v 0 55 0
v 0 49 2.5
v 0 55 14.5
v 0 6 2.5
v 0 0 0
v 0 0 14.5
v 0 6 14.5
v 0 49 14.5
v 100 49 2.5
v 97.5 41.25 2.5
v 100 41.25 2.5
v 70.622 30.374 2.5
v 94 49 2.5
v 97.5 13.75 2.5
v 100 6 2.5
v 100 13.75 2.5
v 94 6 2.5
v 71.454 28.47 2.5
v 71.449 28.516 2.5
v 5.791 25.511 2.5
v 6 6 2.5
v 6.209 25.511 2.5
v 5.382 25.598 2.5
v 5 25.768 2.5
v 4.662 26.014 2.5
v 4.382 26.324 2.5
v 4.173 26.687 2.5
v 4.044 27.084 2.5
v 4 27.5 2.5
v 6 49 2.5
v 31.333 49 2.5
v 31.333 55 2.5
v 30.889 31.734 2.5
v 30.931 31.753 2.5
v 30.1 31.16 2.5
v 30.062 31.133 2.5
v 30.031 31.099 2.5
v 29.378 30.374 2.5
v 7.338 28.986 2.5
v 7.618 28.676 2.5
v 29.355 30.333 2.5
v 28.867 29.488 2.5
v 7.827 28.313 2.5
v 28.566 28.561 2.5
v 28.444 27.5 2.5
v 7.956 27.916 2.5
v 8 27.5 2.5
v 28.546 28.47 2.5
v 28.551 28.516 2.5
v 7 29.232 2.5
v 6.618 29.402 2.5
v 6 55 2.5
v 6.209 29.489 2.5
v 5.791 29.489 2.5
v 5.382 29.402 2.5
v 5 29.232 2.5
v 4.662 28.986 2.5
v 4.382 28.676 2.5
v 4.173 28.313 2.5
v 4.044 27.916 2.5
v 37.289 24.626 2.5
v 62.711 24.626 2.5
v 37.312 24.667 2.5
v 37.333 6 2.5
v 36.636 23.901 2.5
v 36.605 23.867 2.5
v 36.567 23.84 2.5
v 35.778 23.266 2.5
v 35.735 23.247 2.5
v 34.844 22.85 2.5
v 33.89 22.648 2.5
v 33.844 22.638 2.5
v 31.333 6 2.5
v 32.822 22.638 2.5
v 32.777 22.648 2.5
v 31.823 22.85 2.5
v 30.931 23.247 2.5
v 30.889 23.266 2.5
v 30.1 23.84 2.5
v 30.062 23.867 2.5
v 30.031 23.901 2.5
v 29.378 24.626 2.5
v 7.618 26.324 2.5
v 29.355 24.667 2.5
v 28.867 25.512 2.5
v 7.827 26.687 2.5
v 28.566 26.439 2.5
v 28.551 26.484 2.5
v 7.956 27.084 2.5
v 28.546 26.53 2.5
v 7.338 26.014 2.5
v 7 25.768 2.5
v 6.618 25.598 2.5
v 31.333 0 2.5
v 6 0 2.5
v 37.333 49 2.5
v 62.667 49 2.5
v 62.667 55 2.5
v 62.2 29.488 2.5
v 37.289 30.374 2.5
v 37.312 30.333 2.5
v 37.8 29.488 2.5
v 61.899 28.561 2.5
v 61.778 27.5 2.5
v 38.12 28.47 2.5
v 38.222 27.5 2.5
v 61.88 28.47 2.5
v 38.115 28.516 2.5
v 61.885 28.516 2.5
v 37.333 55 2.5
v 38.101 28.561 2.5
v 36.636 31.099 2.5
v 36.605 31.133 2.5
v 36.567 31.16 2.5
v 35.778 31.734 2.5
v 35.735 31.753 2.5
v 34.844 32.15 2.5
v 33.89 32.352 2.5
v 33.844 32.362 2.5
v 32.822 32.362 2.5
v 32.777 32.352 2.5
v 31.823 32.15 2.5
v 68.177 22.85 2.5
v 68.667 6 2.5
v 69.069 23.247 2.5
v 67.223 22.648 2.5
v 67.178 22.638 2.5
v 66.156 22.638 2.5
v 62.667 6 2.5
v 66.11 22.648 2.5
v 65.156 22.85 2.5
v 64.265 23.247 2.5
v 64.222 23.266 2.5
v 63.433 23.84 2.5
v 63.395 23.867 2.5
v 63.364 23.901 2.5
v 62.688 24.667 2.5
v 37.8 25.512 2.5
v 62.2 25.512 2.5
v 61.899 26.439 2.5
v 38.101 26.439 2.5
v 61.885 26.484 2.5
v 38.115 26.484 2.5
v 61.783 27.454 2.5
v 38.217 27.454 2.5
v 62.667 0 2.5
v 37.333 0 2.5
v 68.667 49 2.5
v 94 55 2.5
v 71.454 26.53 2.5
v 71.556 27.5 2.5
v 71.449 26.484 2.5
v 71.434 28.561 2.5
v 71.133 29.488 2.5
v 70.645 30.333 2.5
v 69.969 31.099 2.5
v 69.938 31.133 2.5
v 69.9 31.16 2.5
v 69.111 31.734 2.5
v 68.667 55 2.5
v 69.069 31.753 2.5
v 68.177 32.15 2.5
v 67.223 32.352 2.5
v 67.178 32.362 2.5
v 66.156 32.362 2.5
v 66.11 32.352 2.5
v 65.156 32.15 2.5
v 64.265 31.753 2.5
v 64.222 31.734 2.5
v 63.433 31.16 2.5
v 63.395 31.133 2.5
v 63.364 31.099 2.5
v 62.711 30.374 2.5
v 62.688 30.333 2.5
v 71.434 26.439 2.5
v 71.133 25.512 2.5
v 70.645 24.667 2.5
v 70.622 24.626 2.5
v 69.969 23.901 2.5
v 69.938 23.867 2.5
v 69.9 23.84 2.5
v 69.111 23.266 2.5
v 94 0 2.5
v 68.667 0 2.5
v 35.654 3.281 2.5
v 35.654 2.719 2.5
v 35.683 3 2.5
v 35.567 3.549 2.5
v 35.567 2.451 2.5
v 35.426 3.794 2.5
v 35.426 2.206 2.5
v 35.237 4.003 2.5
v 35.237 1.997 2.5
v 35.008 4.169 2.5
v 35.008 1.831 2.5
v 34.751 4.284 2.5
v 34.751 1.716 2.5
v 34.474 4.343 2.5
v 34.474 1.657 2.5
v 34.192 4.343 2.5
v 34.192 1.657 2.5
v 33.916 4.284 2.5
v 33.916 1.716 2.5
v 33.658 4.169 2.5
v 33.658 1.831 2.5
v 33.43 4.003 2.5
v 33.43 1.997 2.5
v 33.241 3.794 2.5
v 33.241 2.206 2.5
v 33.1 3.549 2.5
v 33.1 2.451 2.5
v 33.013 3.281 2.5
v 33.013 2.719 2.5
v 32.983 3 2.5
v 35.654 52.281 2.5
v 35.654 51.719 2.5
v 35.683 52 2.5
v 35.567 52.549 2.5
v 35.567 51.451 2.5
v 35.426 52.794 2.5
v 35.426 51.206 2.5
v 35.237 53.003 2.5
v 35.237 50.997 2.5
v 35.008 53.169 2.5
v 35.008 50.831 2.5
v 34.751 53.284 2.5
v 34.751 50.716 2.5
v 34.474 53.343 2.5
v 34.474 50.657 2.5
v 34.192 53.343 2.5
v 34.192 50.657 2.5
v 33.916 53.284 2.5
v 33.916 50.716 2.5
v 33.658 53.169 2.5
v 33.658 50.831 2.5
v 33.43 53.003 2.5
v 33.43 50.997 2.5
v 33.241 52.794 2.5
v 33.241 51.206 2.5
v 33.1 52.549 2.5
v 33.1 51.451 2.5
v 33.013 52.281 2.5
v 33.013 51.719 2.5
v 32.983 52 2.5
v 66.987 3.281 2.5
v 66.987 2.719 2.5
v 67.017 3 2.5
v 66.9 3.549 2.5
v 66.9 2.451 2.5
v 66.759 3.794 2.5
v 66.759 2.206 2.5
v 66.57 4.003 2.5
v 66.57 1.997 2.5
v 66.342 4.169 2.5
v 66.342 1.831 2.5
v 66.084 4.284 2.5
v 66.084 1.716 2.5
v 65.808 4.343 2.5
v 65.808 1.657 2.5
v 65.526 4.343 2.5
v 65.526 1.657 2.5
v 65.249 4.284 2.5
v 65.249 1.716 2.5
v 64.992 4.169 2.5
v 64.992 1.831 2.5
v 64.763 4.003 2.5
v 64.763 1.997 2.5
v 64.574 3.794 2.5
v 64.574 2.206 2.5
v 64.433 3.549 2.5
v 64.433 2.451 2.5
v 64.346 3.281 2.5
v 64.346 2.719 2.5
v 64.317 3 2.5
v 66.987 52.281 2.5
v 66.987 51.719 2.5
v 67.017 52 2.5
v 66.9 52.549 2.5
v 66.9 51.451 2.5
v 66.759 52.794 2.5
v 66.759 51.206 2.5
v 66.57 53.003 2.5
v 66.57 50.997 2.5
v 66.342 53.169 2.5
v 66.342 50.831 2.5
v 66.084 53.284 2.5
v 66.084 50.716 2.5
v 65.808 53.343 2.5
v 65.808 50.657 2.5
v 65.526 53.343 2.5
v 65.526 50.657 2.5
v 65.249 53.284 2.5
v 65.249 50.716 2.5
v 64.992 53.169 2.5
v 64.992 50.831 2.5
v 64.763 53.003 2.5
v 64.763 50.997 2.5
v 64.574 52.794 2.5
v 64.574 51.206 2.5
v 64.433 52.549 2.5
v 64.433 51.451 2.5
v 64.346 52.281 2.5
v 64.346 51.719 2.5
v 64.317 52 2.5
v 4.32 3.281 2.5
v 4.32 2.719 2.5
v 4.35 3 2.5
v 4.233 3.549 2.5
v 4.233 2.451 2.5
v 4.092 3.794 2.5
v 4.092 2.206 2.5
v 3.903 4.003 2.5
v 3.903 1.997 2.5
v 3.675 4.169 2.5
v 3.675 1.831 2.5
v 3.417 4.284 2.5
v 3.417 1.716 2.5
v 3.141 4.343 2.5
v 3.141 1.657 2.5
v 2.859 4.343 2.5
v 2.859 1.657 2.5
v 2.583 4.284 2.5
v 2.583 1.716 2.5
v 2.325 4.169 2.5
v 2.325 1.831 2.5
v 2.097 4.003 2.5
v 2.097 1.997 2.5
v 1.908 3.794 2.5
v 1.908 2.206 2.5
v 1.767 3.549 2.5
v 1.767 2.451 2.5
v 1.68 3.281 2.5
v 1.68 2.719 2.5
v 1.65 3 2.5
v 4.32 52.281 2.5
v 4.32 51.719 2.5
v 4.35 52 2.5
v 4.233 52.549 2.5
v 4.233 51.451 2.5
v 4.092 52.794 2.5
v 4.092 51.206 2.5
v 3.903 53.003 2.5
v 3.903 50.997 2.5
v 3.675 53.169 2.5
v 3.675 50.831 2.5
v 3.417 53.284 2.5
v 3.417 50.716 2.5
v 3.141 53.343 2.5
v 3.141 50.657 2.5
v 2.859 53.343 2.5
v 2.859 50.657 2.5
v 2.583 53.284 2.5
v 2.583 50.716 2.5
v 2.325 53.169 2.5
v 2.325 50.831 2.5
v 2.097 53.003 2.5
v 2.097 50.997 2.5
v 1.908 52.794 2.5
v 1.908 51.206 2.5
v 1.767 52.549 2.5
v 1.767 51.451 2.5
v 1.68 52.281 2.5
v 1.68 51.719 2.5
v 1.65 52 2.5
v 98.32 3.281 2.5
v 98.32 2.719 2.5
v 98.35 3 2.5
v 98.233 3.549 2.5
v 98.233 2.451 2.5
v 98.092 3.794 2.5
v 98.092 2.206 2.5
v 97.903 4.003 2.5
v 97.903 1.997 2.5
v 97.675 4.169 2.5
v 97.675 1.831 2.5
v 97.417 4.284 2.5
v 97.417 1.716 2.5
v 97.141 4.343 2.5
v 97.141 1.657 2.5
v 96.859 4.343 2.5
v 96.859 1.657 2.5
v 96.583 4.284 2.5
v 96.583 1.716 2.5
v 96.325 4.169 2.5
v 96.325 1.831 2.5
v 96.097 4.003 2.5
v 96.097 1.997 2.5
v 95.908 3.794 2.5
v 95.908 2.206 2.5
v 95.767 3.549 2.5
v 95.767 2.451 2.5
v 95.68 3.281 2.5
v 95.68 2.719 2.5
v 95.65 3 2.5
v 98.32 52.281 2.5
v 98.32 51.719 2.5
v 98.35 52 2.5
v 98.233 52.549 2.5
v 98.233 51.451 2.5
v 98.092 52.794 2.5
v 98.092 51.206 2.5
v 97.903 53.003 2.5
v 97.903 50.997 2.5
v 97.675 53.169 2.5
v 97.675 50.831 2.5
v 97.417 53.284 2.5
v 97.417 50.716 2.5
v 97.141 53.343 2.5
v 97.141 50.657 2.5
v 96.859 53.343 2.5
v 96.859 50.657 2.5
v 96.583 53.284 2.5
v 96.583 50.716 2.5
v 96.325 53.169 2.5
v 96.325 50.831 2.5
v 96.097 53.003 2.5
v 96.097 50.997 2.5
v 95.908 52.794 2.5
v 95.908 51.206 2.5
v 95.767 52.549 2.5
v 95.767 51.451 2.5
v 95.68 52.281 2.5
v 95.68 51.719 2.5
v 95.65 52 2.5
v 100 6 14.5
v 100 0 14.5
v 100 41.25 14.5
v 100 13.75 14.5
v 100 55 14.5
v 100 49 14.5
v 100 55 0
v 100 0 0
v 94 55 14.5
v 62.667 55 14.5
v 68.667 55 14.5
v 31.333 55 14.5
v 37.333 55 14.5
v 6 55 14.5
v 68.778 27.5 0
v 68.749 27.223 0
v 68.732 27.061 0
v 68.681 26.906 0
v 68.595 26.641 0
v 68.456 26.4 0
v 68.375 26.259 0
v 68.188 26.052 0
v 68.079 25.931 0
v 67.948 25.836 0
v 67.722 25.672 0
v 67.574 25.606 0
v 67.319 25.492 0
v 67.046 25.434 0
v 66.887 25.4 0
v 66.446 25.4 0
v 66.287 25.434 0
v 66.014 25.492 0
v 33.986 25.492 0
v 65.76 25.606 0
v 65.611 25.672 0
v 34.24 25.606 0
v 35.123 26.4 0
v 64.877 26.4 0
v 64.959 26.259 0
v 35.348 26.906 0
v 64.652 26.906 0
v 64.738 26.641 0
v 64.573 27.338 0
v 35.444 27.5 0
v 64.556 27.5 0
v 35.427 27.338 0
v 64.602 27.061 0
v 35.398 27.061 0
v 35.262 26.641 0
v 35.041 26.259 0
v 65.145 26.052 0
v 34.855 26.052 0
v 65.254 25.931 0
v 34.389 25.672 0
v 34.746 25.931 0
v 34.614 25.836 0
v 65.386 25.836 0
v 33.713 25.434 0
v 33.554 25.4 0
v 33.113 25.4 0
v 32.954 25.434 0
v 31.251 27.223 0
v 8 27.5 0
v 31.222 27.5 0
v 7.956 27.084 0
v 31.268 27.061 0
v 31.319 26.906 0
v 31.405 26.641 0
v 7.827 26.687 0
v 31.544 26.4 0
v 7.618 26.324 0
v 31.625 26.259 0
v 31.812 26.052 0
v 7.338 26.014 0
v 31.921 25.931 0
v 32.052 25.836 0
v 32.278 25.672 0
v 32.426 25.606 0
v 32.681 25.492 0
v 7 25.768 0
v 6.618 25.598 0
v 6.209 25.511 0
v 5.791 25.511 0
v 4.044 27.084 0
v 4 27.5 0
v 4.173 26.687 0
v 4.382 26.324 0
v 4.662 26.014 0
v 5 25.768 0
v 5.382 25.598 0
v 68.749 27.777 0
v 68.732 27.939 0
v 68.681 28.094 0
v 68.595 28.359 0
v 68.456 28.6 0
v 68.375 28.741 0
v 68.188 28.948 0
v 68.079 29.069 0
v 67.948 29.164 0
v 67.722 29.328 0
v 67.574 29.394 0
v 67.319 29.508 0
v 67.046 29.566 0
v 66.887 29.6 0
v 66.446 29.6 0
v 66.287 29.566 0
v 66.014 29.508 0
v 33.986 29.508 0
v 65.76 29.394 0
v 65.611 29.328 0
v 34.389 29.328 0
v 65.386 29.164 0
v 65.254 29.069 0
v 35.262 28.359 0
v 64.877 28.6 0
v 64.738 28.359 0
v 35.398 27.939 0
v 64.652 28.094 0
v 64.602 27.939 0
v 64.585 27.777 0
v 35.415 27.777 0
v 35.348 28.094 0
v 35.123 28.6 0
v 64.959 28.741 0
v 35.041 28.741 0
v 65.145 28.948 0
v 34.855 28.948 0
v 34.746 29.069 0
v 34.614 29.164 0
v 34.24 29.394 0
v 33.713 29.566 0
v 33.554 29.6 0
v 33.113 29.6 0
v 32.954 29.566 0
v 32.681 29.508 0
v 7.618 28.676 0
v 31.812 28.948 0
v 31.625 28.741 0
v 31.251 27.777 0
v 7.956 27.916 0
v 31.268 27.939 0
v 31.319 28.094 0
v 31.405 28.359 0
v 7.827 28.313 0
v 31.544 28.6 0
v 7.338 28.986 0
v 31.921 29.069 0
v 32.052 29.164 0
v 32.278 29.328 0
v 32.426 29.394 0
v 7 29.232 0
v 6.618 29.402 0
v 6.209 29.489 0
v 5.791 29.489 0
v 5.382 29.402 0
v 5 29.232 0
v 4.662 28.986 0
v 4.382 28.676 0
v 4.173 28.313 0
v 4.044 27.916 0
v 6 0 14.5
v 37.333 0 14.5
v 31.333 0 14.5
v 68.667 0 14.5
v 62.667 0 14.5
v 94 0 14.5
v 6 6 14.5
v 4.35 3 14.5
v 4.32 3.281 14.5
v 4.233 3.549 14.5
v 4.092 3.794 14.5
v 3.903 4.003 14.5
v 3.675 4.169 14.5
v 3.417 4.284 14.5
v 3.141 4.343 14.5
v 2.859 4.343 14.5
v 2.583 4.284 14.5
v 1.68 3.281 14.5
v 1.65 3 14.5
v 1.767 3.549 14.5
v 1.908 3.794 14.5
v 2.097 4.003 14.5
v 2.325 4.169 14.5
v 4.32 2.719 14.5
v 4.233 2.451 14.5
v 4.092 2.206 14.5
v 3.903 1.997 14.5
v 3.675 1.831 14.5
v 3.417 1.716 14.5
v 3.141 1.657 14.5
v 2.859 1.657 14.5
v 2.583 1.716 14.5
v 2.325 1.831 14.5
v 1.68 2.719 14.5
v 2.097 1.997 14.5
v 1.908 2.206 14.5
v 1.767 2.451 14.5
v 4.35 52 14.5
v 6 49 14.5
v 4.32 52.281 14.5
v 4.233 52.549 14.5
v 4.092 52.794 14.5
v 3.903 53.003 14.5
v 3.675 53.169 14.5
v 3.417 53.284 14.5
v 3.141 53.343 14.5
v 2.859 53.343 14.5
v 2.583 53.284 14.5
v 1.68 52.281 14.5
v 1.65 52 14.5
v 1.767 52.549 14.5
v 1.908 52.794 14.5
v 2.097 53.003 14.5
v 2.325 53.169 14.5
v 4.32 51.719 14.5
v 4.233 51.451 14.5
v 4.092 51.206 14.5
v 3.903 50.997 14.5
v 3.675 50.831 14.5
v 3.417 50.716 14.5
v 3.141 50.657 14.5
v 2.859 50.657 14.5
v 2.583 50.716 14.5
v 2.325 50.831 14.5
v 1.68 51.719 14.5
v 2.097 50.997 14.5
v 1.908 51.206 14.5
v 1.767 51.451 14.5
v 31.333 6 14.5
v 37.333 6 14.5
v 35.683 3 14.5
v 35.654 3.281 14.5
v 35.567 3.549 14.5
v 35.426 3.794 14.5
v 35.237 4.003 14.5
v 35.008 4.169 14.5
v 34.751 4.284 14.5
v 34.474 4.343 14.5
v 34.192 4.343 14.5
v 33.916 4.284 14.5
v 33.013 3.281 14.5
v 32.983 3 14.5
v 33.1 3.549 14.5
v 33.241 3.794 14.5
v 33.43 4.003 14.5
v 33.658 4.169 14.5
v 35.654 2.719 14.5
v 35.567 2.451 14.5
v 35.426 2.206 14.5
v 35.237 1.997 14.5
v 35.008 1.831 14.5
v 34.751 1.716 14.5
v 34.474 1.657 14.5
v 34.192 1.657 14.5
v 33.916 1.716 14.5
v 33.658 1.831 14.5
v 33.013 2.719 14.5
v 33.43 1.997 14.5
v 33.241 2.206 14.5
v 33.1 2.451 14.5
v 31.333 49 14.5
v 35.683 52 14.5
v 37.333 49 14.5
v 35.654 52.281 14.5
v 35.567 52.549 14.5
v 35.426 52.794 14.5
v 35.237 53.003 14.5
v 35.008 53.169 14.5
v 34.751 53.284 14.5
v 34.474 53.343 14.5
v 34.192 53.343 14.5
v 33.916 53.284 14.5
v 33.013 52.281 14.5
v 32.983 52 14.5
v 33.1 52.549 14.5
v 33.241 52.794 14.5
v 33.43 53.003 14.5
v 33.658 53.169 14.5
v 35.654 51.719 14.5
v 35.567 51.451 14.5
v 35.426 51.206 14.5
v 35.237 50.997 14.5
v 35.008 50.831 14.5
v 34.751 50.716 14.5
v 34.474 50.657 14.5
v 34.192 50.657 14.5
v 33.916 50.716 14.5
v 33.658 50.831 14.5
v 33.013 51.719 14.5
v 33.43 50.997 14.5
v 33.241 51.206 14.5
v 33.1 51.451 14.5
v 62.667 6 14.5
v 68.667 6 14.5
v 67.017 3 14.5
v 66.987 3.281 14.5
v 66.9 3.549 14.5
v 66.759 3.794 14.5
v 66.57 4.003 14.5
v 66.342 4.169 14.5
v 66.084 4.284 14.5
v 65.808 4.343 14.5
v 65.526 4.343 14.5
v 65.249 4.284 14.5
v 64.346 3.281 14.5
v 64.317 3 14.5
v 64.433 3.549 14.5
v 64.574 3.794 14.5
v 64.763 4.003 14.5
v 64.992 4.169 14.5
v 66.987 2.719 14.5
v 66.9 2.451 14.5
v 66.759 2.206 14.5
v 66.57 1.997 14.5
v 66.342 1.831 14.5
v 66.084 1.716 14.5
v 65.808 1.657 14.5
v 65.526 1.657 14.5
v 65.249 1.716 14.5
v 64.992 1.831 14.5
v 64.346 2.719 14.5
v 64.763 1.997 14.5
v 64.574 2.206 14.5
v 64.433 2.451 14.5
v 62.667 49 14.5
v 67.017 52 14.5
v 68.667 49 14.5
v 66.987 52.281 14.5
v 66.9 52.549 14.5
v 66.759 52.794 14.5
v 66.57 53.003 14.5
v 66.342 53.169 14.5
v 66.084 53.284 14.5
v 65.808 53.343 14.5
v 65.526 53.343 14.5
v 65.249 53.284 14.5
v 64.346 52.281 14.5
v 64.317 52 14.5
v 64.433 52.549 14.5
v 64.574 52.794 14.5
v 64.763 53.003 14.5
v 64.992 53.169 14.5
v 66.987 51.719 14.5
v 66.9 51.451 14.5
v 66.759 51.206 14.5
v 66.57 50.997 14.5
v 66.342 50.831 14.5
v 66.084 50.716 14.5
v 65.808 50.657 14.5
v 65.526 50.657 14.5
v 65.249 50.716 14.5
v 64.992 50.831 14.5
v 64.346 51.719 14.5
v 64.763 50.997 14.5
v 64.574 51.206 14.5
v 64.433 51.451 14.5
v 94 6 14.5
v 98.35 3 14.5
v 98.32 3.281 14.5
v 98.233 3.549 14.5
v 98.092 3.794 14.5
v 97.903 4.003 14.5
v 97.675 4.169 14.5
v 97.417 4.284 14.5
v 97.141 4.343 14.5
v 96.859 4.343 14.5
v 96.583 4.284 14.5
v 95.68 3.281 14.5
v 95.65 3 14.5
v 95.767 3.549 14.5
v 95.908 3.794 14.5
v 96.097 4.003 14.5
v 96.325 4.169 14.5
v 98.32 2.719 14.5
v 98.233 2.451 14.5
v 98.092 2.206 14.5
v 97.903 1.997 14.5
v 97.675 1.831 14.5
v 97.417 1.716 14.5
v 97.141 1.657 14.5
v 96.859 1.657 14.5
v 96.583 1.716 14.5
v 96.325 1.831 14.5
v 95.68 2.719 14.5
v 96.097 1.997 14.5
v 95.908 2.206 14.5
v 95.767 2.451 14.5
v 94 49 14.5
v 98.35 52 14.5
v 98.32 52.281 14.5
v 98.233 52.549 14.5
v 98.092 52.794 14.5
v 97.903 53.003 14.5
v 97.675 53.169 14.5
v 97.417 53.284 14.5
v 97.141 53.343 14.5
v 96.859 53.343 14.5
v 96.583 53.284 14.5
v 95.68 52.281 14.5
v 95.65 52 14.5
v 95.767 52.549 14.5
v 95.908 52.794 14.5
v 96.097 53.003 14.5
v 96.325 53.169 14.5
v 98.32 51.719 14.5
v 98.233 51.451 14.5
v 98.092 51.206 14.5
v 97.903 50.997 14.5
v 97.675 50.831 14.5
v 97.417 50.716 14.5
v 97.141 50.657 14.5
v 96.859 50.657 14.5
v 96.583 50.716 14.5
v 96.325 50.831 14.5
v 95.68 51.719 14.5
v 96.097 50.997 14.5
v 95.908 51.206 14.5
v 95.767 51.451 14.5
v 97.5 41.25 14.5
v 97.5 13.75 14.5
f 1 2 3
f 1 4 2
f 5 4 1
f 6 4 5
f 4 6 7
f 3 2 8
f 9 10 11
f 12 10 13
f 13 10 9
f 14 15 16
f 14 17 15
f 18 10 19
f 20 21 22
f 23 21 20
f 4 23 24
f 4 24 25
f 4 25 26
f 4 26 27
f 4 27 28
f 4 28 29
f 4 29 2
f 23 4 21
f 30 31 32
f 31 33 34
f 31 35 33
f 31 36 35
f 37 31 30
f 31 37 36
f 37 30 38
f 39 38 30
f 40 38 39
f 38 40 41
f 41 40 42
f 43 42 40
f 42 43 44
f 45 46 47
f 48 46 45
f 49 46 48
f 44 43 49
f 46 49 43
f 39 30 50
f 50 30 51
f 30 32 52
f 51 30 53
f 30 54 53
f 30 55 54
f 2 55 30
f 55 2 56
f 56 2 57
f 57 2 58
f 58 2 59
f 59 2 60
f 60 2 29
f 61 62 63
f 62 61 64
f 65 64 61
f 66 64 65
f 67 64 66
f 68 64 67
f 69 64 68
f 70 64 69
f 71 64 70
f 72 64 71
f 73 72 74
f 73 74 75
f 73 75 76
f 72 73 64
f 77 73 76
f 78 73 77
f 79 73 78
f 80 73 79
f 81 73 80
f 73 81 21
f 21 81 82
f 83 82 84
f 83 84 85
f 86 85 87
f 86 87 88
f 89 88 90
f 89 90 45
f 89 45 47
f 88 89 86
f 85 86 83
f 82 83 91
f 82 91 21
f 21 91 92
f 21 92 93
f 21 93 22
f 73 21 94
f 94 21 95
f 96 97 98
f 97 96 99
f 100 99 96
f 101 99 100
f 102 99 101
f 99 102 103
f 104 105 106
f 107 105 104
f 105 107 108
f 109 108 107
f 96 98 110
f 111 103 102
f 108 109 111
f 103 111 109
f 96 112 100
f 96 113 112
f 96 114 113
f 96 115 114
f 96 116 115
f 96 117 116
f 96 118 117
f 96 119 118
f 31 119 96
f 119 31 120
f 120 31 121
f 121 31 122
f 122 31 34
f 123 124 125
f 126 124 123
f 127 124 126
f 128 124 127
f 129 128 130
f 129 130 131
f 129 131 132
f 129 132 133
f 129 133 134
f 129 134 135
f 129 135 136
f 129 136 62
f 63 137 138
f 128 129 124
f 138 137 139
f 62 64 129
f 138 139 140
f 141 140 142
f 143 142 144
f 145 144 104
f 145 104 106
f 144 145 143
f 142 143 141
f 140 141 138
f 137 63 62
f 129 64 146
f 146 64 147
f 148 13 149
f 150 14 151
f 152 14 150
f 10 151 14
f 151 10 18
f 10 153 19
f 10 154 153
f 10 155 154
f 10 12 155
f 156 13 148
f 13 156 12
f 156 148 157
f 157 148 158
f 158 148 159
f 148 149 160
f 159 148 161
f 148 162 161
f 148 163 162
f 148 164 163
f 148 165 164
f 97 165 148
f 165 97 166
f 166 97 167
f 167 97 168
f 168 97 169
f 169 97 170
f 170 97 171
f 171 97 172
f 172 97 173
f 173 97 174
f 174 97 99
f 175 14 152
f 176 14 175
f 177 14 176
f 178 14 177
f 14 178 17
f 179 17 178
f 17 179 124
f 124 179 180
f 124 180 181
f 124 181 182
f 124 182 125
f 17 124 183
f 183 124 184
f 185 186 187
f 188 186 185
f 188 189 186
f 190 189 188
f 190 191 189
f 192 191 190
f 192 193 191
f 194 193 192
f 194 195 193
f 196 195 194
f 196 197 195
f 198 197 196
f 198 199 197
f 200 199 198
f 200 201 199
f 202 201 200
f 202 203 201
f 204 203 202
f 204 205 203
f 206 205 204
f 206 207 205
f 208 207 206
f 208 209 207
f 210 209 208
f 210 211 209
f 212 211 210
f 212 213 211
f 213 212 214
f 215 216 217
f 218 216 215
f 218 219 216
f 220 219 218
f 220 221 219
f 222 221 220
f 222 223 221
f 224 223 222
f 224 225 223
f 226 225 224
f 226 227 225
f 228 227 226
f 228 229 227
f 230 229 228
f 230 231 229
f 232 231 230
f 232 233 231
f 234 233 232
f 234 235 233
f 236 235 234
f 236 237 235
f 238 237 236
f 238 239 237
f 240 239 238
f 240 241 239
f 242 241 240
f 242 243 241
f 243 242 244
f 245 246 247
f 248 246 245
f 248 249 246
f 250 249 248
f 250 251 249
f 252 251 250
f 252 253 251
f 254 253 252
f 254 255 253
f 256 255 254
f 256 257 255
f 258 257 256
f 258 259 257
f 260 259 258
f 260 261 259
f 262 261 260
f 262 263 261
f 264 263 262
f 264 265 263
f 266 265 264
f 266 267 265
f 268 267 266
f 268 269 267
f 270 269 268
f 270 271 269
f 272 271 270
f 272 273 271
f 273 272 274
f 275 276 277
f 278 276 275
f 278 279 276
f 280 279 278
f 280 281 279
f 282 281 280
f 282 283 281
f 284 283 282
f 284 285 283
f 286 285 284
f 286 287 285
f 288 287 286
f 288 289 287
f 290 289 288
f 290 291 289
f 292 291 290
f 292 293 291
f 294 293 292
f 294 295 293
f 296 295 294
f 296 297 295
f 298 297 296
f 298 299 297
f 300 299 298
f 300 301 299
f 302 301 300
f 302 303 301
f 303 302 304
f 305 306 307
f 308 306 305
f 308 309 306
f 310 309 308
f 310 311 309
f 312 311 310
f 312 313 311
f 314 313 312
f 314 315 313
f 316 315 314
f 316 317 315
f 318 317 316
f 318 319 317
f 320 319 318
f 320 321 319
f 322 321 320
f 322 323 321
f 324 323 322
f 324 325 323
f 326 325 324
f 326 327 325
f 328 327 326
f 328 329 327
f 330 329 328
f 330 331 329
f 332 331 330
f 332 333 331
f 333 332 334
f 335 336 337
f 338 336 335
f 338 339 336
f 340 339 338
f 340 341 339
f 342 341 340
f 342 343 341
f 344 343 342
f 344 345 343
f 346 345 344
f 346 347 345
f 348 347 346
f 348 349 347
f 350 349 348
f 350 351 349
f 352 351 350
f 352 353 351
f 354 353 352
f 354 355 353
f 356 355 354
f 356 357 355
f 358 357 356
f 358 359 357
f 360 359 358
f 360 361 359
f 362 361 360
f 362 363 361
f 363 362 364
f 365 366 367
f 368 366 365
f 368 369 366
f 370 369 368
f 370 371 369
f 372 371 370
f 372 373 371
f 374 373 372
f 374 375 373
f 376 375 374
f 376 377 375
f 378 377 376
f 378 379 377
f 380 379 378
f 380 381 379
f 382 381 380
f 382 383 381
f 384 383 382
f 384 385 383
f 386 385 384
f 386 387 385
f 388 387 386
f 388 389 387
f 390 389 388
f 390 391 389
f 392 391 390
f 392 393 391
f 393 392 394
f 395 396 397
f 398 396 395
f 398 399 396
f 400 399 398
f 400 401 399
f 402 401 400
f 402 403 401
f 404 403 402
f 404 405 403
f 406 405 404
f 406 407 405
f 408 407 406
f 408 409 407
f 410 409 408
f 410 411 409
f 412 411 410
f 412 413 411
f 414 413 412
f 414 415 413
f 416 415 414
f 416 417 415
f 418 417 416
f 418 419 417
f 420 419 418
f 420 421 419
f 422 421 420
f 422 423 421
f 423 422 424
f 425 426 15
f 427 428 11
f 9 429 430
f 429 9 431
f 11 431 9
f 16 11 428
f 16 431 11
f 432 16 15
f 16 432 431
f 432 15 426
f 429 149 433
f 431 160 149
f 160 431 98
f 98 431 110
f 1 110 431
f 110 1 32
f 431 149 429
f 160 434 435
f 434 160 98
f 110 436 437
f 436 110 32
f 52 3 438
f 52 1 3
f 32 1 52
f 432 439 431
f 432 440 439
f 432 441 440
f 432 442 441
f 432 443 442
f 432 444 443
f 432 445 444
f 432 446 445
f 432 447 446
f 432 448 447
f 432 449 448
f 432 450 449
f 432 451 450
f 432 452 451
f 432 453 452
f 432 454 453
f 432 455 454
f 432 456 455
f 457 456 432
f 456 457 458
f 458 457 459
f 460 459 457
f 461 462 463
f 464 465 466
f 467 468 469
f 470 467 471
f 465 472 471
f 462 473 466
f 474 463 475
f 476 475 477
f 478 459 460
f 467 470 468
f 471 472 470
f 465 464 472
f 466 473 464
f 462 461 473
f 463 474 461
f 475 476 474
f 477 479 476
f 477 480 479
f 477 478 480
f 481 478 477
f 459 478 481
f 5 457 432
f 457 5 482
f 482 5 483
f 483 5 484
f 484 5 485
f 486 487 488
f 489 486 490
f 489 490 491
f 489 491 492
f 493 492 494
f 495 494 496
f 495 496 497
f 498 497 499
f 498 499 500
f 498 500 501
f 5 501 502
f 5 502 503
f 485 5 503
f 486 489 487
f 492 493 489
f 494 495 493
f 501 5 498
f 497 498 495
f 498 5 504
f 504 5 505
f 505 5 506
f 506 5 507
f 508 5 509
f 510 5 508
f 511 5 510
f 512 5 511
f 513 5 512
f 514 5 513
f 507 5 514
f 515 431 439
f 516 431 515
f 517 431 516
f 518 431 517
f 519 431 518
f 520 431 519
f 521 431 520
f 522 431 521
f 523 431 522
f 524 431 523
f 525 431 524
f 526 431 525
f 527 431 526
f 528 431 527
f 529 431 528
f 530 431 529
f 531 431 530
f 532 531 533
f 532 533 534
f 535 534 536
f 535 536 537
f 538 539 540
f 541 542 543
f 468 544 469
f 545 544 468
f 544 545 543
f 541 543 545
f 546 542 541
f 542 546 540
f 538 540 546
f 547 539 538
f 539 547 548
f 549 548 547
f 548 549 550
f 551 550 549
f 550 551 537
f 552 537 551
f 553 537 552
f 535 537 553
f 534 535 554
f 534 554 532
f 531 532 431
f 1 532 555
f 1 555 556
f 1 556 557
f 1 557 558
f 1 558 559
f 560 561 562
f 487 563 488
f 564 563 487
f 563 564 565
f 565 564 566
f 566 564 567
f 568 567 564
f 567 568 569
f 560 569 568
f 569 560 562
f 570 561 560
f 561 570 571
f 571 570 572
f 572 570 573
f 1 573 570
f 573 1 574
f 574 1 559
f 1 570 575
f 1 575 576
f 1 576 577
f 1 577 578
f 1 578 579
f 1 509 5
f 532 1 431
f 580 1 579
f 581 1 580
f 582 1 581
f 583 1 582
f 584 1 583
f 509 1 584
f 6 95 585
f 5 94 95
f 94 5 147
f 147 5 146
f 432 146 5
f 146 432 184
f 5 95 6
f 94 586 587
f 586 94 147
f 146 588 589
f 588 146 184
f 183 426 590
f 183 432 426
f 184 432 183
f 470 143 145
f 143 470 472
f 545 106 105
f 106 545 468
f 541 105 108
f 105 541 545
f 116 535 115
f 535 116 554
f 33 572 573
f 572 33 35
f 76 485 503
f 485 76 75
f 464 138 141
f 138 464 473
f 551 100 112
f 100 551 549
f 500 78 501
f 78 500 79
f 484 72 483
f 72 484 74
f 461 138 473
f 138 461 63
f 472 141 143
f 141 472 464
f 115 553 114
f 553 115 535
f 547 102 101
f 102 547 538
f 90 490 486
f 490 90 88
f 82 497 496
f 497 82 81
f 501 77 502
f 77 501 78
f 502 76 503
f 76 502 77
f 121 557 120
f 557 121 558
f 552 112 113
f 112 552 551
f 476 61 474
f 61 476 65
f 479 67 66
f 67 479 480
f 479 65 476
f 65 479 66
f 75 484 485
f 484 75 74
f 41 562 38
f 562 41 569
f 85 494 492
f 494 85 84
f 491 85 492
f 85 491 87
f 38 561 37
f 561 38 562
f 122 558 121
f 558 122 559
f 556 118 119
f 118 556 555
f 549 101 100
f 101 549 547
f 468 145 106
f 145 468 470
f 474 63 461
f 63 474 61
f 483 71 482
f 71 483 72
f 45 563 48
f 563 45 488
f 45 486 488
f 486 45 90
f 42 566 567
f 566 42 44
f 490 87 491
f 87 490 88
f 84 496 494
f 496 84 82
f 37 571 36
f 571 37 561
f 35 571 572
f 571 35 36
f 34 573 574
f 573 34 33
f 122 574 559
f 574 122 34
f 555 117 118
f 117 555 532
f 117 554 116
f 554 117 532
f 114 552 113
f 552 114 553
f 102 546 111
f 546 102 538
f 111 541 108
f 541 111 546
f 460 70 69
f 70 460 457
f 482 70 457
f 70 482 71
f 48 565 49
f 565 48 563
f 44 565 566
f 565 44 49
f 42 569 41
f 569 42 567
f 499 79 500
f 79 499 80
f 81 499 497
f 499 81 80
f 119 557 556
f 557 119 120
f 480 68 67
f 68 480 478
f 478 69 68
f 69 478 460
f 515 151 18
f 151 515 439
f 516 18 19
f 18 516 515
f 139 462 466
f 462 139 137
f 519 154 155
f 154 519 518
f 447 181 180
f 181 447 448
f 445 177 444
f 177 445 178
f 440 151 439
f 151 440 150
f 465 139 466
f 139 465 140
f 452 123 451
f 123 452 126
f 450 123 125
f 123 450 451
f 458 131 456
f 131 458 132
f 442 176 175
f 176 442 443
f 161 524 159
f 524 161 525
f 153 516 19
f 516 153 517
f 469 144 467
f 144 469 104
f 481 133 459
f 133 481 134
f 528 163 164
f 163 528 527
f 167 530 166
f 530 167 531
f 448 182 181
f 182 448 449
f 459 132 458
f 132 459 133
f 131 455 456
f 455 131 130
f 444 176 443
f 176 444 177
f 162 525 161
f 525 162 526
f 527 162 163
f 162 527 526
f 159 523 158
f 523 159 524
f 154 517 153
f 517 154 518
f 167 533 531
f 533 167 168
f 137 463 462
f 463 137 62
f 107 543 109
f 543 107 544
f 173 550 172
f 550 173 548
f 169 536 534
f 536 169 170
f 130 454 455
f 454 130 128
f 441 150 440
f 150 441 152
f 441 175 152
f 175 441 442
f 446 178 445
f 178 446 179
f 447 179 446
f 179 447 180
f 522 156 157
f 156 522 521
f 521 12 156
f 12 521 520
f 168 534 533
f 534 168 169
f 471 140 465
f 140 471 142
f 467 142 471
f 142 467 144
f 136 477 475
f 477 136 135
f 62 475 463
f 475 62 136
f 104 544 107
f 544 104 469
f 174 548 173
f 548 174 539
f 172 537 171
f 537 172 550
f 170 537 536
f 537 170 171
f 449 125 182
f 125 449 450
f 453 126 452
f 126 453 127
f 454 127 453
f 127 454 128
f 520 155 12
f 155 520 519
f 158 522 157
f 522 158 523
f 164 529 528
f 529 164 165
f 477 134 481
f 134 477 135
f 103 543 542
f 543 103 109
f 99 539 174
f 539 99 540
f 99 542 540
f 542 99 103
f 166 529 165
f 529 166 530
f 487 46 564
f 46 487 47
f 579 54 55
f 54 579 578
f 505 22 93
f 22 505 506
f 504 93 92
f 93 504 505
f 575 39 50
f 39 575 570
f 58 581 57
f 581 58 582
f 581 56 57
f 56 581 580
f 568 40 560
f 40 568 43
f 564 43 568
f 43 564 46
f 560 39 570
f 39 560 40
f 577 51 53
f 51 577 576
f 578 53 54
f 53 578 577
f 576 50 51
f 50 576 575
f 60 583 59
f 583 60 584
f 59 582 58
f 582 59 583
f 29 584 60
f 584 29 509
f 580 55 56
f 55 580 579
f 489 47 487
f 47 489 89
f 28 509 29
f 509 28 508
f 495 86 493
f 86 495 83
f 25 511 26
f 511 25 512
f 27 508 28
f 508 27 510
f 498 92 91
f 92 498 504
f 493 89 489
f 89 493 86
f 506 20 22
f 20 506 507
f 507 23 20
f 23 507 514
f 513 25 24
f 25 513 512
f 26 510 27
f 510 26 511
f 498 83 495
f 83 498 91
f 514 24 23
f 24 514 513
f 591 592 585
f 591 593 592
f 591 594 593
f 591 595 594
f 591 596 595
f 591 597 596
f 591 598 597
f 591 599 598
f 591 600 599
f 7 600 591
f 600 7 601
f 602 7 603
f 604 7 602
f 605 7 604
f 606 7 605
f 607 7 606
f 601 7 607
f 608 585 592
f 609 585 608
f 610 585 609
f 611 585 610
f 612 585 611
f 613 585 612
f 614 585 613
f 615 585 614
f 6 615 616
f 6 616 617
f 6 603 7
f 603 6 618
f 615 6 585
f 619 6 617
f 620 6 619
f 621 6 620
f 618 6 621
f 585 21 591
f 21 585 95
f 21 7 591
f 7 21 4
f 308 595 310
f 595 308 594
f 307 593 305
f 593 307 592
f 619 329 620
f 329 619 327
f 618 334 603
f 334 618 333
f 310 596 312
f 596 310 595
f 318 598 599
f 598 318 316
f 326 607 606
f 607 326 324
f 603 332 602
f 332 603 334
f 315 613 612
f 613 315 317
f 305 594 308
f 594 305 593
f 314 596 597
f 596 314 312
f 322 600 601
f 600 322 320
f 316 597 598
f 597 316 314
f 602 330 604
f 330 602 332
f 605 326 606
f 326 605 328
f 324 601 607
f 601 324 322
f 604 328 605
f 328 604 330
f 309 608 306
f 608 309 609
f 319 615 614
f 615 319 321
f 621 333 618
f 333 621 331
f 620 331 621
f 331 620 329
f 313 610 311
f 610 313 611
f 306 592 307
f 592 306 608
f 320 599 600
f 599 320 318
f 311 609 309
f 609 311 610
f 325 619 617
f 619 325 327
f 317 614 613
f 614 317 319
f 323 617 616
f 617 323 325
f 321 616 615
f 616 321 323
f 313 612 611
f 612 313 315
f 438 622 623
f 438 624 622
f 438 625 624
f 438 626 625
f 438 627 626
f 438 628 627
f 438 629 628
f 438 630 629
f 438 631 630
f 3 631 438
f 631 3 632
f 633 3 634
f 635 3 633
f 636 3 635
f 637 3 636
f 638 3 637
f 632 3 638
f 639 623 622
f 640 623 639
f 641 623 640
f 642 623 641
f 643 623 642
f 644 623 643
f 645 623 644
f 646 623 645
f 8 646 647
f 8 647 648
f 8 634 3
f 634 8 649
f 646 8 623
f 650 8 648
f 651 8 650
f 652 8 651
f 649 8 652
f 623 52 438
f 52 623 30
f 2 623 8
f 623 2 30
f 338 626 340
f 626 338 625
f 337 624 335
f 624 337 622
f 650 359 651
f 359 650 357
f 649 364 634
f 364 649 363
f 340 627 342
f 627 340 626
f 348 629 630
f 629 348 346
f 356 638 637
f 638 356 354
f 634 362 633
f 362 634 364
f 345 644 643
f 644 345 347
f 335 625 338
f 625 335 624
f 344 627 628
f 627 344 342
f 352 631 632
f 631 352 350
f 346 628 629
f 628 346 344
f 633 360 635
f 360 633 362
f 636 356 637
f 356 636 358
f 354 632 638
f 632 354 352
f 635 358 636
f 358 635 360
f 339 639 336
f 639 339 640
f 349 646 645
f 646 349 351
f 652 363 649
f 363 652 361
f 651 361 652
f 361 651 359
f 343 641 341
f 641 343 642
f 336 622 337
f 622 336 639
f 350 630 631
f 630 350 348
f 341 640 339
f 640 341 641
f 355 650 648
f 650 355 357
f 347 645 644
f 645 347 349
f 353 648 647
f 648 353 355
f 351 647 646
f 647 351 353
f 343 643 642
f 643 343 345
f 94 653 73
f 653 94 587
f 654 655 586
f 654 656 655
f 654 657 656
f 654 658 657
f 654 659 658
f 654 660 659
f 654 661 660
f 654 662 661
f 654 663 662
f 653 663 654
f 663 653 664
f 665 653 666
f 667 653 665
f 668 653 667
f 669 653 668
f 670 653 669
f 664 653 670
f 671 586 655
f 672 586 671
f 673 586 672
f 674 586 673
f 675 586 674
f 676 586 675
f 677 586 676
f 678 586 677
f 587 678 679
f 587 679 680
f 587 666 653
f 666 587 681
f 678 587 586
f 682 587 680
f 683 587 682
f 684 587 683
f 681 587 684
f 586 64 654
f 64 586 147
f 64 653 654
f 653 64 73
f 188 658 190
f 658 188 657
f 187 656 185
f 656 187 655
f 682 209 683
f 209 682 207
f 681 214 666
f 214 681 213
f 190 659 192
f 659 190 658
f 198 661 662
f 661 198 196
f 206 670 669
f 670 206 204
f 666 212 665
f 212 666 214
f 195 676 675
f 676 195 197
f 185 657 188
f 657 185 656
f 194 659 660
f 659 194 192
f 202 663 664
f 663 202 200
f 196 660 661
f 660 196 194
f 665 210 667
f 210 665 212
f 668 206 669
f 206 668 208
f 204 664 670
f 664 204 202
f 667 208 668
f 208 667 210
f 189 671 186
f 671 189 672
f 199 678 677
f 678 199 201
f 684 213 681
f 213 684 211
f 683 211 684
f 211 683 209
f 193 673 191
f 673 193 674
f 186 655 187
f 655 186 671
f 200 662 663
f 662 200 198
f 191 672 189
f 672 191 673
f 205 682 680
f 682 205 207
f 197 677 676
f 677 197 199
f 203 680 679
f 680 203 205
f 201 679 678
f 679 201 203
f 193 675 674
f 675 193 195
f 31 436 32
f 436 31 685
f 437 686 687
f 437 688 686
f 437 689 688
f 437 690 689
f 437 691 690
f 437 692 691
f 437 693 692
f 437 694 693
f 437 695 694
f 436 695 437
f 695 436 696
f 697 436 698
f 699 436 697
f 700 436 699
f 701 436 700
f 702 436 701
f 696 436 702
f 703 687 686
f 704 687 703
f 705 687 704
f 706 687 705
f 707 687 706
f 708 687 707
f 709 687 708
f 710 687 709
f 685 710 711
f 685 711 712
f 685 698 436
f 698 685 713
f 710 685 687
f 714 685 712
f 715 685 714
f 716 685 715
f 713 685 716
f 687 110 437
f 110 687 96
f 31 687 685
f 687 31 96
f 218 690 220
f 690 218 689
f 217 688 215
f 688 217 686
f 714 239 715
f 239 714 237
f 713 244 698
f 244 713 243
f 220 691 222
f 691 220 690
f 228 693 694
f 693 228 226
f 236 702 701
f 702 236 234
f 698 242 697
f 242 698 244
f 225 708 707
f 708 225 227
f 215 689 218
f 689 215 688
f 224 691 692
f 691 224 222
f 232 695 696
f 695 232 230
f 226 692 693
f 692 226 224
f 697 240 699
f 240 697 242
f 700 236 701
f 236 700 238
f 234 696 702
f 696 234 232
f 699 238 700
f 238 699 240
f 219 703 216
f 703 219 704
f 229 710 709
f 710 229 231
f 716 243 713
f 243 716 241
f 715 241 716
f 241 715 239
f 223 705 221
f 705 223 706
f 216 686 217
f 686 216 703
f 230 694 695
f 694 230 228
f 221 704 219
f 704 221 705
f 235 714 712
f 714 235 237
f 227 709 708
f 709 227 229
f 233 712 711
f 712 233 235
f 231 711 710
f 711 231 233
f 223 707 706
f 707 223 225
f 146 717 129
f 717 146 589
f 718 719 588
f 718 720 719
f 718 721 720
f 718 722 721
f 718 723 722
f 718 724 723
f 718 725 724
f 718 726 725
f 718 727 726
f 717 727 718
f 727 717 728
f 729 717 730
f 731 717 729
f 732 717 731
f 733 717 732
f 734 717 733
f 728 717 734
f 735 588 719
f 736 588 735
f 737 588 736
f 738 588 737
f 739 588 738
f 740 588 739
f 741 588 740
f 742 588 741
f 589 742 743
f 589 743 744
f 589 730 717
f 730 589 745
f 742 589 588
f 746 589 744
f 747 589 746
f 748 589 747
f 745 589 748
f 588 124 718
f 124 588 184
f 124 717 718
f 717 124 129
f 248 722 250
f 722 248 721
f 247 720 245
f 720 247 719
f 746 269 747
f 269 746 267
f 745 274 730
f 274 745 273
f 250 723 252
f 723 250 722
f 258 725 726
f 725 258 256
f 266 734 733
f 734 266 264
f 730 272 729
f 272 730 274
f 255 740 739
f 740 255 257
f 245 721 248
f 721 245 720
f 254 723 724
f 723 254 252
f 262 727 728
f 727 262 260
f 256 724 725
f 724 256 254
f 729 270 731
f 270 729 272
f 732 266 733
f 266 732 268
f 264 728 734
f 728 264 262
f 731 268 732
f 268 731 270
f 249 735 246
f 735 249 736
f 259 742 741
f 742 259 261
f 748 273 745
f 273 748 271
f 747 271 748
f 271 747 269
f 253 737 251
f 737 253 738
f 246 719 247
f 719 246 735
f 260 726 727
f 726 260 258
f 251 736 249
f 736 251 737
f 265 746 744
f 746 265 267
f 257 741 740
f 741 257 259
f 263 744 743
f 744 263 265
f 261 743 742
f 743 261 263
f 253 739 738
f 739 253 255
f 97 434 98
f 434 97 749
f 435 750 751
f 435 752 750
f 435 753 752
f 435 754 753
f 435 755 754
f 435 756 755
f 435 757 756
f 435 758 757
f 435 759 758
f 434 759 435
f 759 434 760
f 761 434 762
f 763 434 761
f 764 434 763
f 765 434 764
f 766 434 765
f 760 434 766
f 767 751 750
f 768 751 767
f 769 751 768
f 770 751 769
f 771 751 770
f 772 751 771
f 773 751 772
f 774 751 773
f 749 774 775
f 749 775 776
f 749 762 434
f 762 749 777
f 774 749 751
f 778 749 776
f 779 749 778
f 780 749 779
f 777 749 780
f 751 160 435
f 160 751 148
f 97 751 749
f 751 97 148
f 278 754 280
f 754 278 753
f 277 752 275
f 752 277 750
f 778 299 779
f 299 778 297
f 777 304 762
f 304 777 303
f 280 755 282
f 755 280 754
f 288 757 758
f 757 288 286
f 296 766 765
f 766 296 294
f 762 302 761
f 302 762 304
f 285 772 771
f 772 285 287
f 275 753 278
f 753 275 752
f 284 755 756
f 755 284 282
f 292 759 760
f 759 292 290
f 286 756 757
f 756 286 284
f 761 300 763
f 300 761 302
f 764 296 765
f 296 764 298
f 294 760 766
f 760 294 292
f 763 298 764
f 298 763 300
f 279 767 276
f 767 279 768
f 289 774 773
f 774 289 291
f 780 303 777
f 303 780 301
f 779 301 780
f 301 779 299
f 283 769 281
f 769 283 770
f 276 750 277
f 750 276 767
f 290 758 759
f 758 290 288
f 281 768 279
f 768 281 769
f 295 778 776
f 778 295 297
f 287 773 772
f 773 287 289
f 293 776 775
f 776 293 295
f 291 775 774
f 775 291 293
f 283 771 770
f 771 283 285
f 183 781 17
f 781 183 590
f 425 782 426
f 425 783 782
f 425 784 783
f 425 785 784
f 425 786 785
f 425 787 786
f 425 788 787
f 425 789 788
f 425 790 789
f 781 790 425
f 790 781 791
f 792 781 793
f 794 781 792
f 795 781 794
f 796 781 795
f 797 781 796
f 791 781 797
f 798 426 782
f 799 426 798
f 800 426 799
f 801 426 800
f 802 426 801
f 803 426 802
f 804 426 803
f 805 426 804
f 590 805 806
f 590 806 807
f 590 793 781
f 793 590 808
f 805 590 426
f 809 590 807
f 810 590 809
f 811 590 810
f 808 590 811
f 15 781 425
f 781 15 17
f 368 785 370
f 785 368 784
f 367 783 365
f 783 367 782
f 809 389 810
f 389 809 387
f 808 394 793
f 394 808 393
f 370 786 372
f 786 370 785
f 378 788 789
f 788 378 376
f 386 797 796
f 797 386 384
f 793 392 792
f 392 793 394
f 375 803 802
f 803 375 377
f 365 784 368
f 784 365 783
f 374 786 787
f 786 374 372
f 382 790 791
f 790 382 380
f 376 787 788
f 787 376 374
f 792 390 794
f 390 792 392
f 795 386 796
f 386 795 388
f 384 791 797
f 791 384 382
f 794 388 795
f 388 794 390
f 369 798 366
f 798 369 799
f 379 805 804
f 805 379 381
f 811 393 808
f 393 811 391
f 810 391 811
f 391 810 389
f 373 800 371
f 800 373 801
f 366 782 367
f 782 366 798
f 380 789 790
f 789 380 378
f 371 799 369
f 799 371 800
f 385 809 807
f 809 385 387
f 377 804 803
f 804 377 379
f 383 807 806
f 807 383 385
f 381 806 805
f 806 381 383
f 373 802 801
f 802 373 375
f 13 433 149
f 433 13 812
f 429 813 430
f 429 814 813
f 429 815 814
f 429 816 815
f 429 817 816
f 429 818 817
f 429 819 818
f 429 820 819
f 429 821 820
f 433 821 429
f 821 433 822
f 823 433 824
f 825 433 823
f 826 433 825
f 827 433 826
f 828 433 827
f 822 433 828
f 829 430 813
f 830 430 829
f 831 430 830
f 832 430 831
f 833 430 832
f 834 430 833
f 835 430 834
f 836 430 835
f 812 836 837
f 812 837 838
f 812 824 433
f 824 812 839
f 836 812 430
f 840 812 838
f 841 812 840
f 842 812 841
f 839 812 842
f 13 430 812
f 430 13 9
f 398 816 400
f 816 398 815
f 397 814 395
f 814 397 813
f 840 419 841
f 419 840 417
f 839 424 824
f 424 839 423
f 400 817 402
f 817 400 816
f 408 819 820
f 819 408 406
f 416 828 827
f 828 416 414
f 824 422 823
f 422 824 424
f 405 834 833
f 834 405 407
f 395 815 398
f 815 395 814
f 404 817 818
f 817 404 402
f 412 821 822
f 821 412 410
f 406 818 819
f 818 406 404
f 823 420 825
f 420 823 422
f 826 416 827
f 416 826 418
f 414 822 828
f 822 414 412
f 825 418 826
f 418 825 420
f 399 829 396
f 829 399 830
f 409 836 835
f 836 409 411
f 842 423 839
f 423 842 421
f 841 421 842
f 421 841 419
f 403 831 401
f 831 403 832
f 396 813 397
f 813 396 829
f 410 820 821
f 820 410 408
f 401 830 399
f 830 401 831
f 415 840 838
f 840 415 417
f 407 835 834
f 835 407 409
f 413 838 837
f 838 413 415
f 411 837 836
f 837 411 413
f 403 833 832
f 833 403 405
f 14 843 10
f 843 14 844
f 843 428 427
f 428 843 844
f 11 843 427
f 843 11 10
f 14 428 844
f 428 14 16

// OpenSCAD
/* CONFIGURATION */

// Threadded screw hole. Suggested values: M2=1.8, M2.5=2.25, M3=2.7, M4=3.6, M5=4.5
postInnerDiameter = 2.7; // 0.01
// Height of the mounting "post", allowing for airflow, bottom mounted devices, etc.
postHeight = 12;
// Thickness of the base plate
baseHeight = 2.5; // 0.01
// Level of detail for rendering
$fs = .2; // 0.01


//
baseLength = 100;
baseWidth = 55;

// Render a "post" as one solid cube with a hollow cylinder/hole inside of it
module post()
{
    difference()
    {
        cube([postOuterWidth, postOuterWidth, postHeight]);
        translate([screwHoleOffset, screwHoleOffset, postHeight / 2])
        {
            // Hollow it out with a slightly taller cylinder
            cylinder(h = postHeight + 1, r = postInnerDiameter / 2, center = true);
        }
    }
}

// Base with mounting holes
difference()
{
    // Base
    cube([baseLength, baseWidth, baseHeight]);

    // Screw holes
    translate([baseLength / 3, baseWidth / 2, -1])
    {
        cylinder(baseHeight+2, r1=3/2, r2=12/2, true);
    }
    translate([baseLength * 2/3, baseWidth / 2, -1])
    {
        cylinder(baseHeight+2, r1=3/2, r2=12/2, true);
    }

    // Hanger hole
    translate([6, baseWidth / 2, -1])
    {
        cylinder(baseHeight + 2, r=2);
    }
}

// Render all posts
screwHoleOffset = 3;
screwCount = 4;
postOuterWidth = screwHoleOffset * 2;
screwInterval = (baseLength - screwHoleOffset * 2) / (screwCount - 1);
for (i = [0 : 1 : screwCount-1]) // [start: inc: end]
{
    translate([i * screwInterval, 0, baseHeight])
    {
        post();
    }
    translate([i * screwInterval, baseWidth - postOuterWidth, baseHeight])
    {
        post();
    }
}

// Battery retainer. NOTE: baseHeight is being used for the thickness of the retainer.
translate([baseLength - baseHeight, baseWidth / 4, baseHeight])
{
    cube([baseHeight, baseWidth / 2, postHeight]);
}
